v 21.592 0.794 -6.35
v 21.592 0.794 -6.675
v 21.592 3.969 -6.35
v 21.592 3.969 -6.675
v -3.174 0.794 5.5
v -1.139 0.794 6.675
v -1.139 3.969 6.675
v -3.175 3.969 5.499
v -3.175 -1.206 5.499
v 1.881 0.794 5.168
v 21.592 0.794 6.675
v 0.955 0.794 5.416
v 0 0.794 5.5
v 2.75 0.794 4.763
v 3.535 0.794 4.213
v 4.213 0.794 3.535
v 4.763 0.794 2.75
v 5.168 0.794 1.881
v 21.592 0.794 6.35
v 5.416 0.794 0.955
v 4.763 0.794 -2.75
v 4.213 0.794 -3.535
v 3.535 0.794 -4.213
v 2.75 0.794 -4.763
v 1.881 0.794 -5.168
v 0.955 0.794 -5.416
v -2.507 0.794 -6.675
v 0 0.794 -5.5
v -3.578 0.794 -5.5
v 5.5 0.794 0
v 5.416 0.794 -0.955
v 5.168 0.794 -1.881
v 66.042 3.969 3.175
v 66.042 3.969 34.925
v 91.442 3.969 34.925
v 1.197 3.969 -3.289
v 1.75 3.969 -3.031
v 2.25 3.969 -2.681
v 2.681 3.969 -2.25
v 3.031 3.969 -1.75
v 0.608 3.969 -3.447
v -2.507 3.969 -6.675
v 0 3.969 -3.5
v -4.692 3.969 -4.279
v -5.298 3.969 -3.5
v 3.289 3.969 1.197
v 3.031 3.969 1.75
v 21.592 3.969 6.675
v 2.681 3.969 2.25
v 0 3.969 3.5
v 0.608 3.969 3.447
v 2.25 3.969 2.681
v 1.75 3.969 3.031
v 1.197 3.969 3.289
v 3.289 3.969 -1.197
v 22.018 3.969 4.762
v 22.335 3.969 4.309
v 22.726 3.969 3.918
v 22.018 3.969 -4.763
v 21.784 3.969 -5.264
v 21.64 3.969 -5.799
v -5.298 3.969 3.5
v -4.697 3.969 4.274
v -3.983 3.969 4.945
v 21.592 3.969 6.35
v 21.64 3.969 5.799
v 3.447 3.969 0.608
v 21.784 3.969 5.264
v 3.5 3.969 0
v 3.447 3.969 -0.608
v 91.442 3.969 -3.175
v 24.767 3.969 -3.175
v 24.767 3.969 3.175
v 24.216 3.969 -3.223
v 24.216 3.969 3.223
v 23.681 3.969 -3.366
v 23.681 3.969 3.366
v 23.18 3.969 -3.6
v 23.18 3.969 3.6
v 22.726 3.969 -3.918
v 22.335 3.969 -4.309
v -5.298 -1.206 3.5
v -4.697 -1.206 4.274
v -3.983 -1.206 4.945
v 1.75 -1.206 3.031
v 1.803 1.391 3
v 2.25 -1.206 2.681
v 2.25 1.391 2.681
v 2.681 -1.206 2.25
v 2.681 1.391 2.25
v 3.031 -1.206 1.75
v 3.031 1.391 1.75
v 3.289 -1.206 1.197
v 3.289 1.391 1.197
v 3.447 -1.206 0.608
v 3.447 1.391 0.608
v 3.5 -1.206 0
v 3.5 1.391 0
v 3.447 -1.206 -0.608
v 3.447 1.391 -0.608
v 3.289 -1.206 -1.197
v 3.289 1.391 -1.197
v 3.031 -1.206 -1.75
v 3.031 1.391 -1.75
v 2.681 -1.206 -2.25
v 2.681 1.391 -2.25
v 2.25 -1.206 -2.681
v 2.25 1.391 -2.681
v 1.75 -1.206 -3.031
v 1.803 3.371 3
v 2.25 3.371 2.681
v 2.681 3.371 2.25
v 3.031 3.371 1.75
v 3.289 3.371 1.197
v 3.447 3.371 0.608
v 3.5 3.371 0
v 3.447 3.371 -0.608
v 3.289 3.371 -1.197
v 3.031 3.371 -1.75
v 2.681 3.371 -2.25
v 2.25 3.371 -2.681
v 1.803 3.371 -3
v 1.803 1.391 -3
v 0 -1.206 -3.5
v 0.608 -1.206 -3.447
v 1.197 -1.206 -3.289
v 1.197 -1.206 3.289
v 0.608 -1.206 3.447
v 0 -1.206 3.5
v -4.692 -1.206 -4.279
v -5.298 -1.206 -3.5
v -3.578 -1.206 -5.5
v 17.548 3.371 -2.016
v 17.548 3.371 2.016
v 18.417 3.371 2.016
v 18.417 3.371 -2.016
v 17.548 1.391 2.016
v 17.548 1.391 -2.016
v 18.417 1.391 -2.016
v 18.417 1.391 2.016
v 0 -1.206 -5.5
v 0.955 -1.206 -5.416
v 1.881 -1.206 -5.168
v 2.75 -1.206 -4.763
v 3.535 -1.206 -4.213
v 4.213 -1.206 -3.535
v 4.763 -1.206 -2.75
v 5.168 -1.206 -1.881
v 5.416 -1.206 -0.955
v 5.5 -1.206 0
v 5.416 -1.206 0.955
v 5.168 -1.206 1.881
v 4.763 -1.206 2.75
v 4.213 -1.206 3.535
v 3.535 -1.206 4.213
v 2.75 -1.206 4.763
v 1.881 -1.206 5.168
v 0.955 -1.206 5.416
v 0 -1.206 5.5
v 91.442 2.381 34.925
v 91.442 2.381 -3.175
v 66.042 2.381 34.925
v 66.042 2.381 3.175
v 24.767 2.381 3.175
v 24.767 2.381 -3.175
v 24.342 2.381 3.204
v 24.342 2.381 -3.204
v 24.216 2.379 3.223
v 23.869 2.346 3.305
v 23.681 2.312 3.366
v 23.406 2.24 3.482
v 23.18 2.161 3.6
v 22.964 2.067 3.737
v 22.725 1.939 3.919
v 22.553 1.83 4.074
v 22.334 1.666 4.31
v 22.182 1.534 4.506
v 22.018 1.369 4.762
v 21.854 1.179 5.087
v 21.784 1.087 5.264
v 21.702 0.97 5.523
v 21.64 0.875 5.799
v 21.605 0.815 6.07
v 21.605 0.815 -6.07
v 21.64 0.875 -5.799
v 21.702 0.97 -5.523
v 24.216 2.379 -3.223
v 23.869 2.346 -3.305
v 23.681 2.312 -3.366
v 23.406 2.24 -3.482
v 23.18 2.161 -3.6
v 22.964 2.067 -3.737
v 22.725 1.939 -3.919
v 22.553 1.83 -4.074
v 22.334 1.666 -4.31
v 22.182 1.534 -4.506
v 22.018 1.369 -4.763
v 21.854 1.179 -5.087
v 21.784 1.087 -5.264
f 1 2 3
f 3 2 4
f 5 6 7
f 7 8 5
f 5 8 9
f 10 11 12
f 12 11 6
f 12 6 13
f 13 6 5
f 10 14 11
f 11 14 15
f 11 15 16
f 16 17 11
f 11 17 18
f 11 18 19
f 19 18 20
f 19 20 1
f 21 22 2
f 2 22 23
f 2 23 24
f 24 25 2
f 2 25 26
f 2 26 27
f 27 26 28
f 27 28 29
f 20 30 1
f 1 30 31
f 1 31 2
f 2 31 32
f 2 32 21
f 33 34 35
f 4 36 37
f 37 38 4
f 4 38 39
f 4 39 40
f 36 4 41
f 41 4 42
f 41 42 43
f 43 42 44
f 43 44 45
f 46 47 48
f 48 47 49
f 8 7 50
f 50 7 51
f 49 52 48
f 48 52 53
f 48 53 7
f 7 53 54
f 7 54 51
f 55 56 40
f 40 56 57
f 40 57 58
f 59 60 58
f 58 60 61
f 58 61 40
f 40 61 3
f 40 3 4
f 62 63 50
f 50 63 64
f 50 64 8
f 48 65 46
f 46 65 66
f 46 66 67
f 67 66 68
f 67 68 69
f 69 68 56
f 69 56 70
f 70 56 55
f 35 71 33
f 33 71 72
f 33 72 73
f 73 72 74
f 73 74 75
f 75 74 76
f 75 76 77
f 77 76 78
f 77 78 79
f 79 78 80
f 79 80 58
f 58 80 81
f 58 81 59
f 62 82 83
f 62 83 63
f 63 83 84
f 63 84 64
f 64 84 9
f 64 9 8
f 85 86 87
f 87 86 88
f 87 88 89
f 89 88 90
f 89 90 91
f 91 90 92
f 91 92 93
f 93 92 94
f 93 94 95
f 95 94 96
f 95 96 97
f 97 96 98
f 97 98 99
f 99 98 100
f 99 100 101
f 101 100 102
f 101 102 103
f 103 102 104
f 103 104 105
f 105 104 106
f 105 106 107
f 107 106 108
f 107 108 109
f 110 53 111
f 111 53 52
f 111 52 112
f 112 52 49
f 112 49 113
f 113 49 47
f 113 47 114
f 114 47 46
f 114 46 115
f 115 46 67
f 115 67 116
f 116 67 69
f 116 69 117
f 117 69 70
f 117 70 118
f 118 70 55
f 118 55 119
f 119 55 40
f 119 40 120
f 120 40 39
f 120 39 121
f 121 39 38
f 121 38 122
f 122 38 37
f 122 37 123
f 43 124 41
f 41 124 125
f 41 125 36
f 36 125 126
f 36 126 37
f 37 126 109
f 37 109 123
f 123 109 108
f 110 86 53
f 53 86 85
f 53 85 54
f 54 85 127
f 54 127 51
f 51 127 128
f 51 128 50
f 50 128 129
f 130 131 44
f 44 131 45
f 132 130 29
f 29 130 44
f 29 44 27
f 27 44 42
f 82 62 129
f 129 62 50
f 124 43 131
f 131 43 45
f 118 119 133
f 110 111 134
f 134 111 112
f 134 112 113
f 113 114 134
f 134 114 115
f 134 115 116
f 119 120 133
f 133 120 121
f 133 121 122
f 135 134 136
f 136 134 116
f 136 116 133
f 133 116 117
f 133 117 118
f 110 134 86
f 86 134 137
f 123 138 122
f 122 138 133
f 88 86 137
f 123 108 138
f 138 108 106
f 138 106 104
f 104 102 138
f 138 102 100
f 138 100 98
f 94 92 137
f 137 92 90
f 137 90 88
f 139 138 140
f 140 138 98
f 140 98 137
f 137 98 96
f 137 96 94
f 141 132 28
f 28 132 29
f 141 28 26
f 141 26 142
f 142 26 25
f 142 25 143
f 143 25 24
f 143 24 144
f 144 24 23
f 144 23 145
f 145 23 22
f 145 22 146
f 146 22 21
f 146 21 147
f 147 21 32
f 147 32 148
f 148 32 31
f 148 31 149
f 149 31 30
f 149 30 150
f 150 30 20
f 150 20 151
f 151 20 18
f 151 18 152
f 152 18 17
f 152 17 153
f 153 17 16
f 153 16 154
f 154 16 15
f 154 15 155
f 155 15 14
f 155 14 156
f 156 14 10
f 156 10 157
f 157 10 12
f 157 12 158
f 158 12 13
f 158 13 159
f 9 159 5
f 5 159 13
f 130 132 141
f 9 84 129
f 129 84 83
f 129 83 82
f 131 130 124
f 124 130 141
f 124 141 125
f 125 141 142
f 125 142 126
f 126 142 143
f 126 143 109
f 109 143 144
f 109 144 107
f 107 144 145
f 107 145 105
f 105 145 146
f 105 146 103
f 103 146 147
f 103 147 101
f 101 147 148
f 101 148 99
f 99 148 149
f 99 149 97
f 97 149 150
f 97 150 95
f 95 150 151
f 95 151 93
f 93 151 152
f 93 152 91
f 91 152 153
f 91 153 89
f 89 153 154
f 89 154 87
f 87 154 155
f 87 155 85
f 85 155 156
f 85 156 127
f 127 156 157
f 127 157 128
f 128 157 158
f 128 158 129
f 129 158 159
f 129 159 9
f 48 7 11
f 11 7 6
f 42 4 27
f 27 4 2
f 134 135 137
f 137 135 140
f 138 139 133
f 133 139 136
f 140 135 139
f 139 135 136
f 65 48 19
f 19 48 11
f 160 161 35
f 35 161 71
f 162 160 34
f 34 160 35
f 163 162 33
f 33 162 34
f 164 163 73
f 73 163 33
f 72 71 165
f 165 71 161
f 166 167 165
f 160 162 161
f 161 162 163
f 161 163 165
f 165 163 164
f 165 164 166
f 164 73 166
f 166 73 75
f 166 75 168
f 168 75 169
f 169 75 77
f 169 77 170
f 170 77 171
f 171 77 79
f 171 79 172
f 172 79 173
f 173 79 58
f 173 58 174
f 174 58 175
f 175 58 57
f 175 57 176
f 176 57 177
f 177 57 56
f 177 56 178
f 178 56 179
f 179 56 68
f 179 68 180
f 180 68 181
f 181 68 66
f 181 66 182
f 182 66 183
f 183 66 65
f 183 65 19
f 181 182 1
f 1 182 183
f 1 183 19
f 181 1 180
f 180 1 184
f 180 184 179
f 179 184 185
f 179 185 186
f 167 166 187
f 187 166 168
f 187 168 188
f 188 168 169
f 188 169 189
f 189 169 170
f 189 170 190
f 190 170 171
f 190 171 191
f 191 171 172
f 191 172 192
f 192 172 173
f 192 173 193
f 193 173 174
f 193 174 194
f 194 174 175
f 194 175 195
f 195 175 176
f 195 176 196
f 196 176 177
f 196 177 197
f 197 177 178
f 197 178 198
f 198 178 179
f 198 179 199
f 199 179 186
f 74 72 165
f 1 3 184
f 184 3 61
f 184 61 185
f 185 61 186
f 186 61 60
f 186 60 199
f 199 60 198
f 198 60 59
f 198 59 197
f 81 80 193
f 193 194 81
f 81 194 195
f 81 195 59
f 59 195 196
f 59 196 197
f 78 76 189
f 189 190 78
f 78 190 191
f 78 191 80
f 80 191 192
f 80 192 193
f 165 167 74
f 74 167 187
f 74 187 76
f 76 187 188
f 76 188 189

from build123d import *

# Parameters (mm, degrees)
BOSS_EXTRUDE1_DEPTH = 4.7625
SKETCH5_R           = 3.5000057
CUT_EXTRUDE2_DEPTH  = 3.37125
CUT_EXTRUDE3_START  = 1.98
CUT_EXTRUDE3_DEPTH  = 1.98
SKETCH10_W          = 6.35
SKETCH10_H          = 0.79375
SKETCH10_W_2        = 35.745198541
SKETCH10_W_3        = 19.548012242
CUT_EXTRUDE4_DEPTH  = 68.70484365
CUT_EXTRUDE5_DEPTH  = 2.54
BOSS_EXTRUDE2_START = 2
BOSS_EXTRUDE2_DEPTH = 2
CUT_EXTRUDE6_DEPTH  = 62.875089873
BOSS_EXTRUDE4_REACH = 26.955
SKETCH15_W          = 13.3500114
SKETCH15_H          = 3.175
SKETCH15_W_2        = 4.031850112
SKETCH15_H_2        = 1.98
SKETCH20_W          = 13.3500114
SKETCH20_H          = 3.175
BOSS_EXTRUDE7_DEPTH = 3.175
SKETCH21_W          = 25.4
SKETCH21_H          = 31.75
BOSS_EXTRUDE8_DEPTH = 1.5875
FILLET1_R           = 3.175


with BuildPart() as part:
    # Sketch1 → Boss-Extrude1 (new body)
    with BuildSketch(Plane(origin=(0, 0, 0), x_dir=(1, 0, 0), z_dir=(0, 1, 0))):
        with BuildLine():
            Line((23.295952901, 15.613744639), (32.606191406, 26.334377035))
            ThreePointArc((32.606191406, 26.334377035), (32.033289602, 35.241600739), (23.119772343, 34.776777479))
            Line((23.119772343, 34.776777479), (-4.692006503, 4.278735207))
            ThreePointArc((-4.692006503, 4.278735207), (-6.274930424, -0.973523588), (-3.175, -5.499261314))
            Line((-3.175, -5.499261314), (27.78125, -23.371860585))
            ThreePointArc((27.78125, -23.371860585), (37.752424387, -26.756618196), (48.25987898, -26.067923237))
            ThreePointArc((48.25987898, -26.067923237), (49.382410995, -24.123640754), (47.438128512, -23.001108739))
            ThreePointArc((47.438128512, -23.001108739), (21.083895316, -12.623567162), (23.295952901, 15.613744639))
        make_face()
    extrude(amount=BOSS_EXTRUDE1_DEPTH)

    # Sketch5 → Cut-Extrude2 (cut)
    with BuildSketch(Plane.XZ):
        Circle(SKETCH5_R)
        with BuildLine():
            ThreePointArc((0, -3.5000057), (-3.5000057, 0), (0, 3.5000057))
            Line((0, 3.5000057), (-5.298345034, 3.5000057))
            ThreePointArc((-5.298345034, 3.5000057), (-6.35, 0), (-5.298345034, -3.5000057))
            Line((-5.298345034, -3.5000057), (0, -3.5000057))
        make_face()
    extrude(amount=-CUT_EXTRUDE2_DEPTH, mode=Mode.SUBTRACT)

    # Sketch6 → Cut-Extrude3 (cut)
    with BuildSketch(Plane.XZ.offset(-3.37125).offset(CUT_EXTRUDE3_START)):
        with BuildLine():
            Line((17.802786704, -2), (17.802786704, 2))
            Line((17.802786704, 2), (1.802786704, 3))
            ThreePointArc((1.802786704, 3), (3.5000057, 0), (1.802786704, -3))
            Line((1.802786704, -3), (17.802786704, -2))
        make_face()
    extrude(amount=-CUT_EXTRUDE3_DEPTH, mode=Mode.SUBTRACT)

    # Sketch10 → Cut-Extrude4 (cut, through all)
    with BuildSketch(Plane(origin=(-3.175, 0, 5.499261314), x_dir=(0.8660254037844385, 0, 0.5000000000000003), z_dir=(-0.5000000000000003, 0, 0.8660254037844385))):
        with Locations((-3.175, 4.365625)):
            Rectangle(SKETCH10_W, SKETCH10_H)
        with Locations((17.872599271, 4.365625)):
            Rectangle(SKETCH10_W_2, SKETCH10_H)
        with Locations((45.519204662, 4.365625)):
            Rectangle(SKETCH10_W_3, SKETCH10_H)
        with Locations((45.519204662, 0.396875)):
            Rectangle(SKETCH10_W_3, SKETCH10_H)
        with Locations((17.872599271, 0.396875)):
            Rectangle(SKETCH10_W_2, SKETCH10_H)
        with Locations((-3.175, 0.396875)):
            Rectangle(SKETCH10_W, SKETCH10_H)
    extrude(amount=-CUT_EXTRUDE4_DEPTH, mode=Mode.SUBTRACT)

    # Sketch11 → Cut-Extrude5 (cut)
    with BuildSketch(Plane.XZ.offset(-3.37125)):
        with BuildLine():
            Line((-5.298345034, 3.5000057), (0, 3.5000057))
            ThreePointArc((0, 3.5000057), (3.5000057, 0), (0, -3.5000057))
            Line((0, -3.5000057), (-5.298345034, -3.5000057))
            ThreePointArc((-5.298345034, -3.5000057), (-6.35, 0), (-5.298345034, 3.5000057))
        make_face()
    extrude(amount=-CUT_EXTRUDE5_DEPTH, mode=Mode.SUBTRACT)

    # Sketch12 → Boss-Extrude2 (add)
    with BuildSketch(Plane.XZ.offset(-0.79375).offset(BOSS_EXTRUDE2_START)):
        with BuildLine():
            Line((-3.175, 5.499261314), (-3.173710686, 5.5000057))
            Line((-3.173710686, 5.5000057), (0, 5.5000057))
            ThreePointArc((0, 5.5000057), (5.5000057, 0), (0, -5.5000057))
            Line((0, -5.5000057), (-3.57830535, -5.5000057))
            Line((-3.57830535, -5.5000057), (-4.692006503, -4.278735207))
            ThreePointArc((-4.692006503, -4.278735207), (-5.010327921, -3.901168303), (-5.298345034, -3.5000057))
            Line((-5.298345034, -3.5000057), (0, -3.5000057))
            ThreePointArc((0, -3.5000057), (3.5000057, 0), (0, 3.5000057))
            Line((0, 3.5000057), (-5.298345034, 3.5000057))
            ThreePointArc((-5.298345034, 3.5000057), (-4.353004683, 4.623186156), (-3.175, 5.499261314))
        make_face()
    extrude(amount=-BOSS_EXTRUDE2_DEPTH)

    # Sketch14 → Cut-Extrude6 (cut, through all)
    with BuildSketch(Plane(origin=(0, 3.96875, 0), x_dir=(1, 0, 0), z_dir=(0, 1, 0))):
        with BuildLine():
            Line((-2.50679919, 6.6750057), (18.4171905, 6.6750057))
            ThreePointArc((18.4171905, 6.6750057), (20.373146549, 11.408228546), (23.295952901, 15.613744639))
            Line((23.295952901, 15.613744639), (32.606191406, 26.334377035))
            ThreePointArc((32.606191406, 26.334377035), (32.033289602, 35.241600739), (23.119772343, 34.776777479))
            Line((23.119772343, 34.776777479), (-2.50679919, 6.6750057))
        make_face()
        with BuildLine():
            ThreePointArc((47.438128512, -23.001108739), (29.599662599, -20.753834653), (18.4171905, -6.6750057))
            Line((18.4171905, -6.6750057), (-1.138550987, -6.6750057))
            Line((-1.138550987, -6.6750057), (27.78125, -23.371860585))
            ThreePointArc((27.78125, -23.371860585), (37.752424387, -26.756618196), (48.25987898, -26.067923237))
            ThreePointArc((48.25987898, -26.067923237), (49.382410995, -24.123640754), (47.438128512, -23.001108739))
        make_face()
    extrude(amount=-CUT_EXTRUDE6_DEPTH, mode=Mode.SUBTRACT)

    # Sketch15 → Boss-Extrude4 (add, up to next)
    with BuildSketch(Plane(origin=(18.4171905, 0, 0), x_dir=(0, 0, -1), z_dir=(1, 0, 0)), mode=Mode.PRIVATE) as boss_extrude4_sk1:
        with Locations((0, 2.38125)):
            Rectangle(SKETCH15_W, SKETCH15_H)
        with Locations((0, 2.38125)):
            Rectangle(SKETCH15_W_2, SKETCH15_H_2, mode=Mode.SUBTRACT)
    boss_extrude4_tool1 = extrude(boss_extrude4_sk1.sketch, amount=-BOSS_EXTRUDE4_REACH, mode=Mode.PRIVATE) - part.part
    add(boss_extrude4_tool1.solids().sort_by_distance((18.41719, 2.38125, -6.537782))[0])

    # Sketch20 → Boss-Extrude7 (add)
    with BuildSketch(Plane(origin=(18.4171905, 0, 0), x_dir=(0, 0, -1), z_dir=(1, 0, 0))):
        with Locations((0, 2.38125)):
            Rectangle(SKETCH20_W, SKETCH20_H)
    extrude(amount=BOSS_EXTRUDE7_DEPTH)

    # Sketch21 → Boss-Extrude8 (add)
    with BuildSketch(Plane(origin=(0, 3.96875, 0), x_dir=(1, 0, 0), z_dir=(0, 1, 0))):
        with Locations((78.7421905, -19.05)):
            Rectangle(SKETCH21_W, SKETCH21_H)
        Polygon((91.4421905, 3.175), (21.5921905, 3.175), (21.5921905, -3.175), (66.0421905, -3.175), (91.4421905, -3.175), align=None)
    extrude(amount=-BOSS_EXTRUDE8_DEPTH)

    # Fillet1
    # the kernel refuses this fillet: 3.175 mm, written as the material it adds along each edge
    with BuildSketch(Plane(origin=(21.5921905, 3.96875, 3.175), x_dir=(0, 0, 1), z_dir=(0, -1, 0))) as fillet1_piece_1:
        with BuildLine():
            CenterArc((FILLET1_R, -FILLET1_R), FILLET1_R, 90, 90)
            Line((0, -FILLET1_R), (-FILLET1_R * 0.02, -FILLET1_R))
            Line((-FILLET1_R * 0.02, -FILLET1_R), (-FILLET1_R * 0.02, FILLET1_R * 0.02))
            Line((-FILLET1_R * 0.02, FILLET1_R * 0.02), (FILLET1_R, FILLET1_R * 0.02))
            Line((FILLET1_R, FILLET1_R * 0.02), (FILLET1_R, 0))
        make_face()
    extrude(amount=1.5875)
    with BuildSketch(Plane(origin=(21.5921905, 3.96875, -3.175), x_dir=(0, 0, -1), z_dir=(0, -1, 0))) as fillet1_piece_2:
        with BuildLine():
            CenterArc((FILLET1_R, FILLET1_R), FILLET1_R, 180, 90)
            Line((0, FILLET1_R), (-FILLET1_R * 0.02, FILLET1_R))
            Line((-FILLET1_R * 0.02, FILLET1_R), (-FILLET1_R * 0.02, -FILLET1_R * 0.02))
            Line((-FILLET1_R * 0.02, -FILLET1_R * 0.02), (FILLET1_R, -FILLET1_R * 0.02))
            Line((FILLET1_R, -FILLET1_R * 0.02), (FILLET1_R, 0))
        make_face()
    extrude(amount=1.5875)
    with BuildSketch(Plane(origin=(21.5921905, 2.38125, -3.175), x_dir=(0, -1, 0), z_dir=(0, 0, 1))) as fillet1_piece_3:
        with BuildLine():
            CenterArc((3.175, 2.749630657), FILLET1_R, 180, 60)
            Line((0, 2.749630657), (-0.0635, 2.749630657))
            Line((-0.0635, 2.749630657), (-0.0635, 0))
            Line((-0.0635, 0), (0, -0.0635))
            ThreePointArc((0, -0.0635), (0.79375, -0.0635), (1.55575, -0.054992613))
            Line((1.55575, -0.054992613), (1.5875, 0))
        make_face()
    extrude(amount=6.35)
    with BuildSketch(Plane(origin=(21.5921905, 3.96875, 3.175), x_dir=(0, 0, 1), z_dir=(0, -1, 0))) as fillet1_piece_4a_section:
        with BuildLine():
            CenterArc((FILLET1_R, -FILLET1_R), FILLET1_R, 90, 90)
            Line((0, -FILLET1_R), (-FILLET1_R * 0.02, -FILLET1_R))
            Line((-FILLET1_R * 0.02, -FILLET1_R), (-FILLET1_R * 0.02, FILLET1_R * 0.02))
            Line((-FILLET1_R * 0.02, FILLET1_R * 0.02), (FILLET1_R, FILLET1_R * 0.02))
            Line((FILLET1_R, FILLET1_R * 0.02), (FILLET1_R, 0))
        make_face()
    fillet1_piece_4a = extrude(amount=9.525, mode=Mode.PRIVATE)
    fillet1_piece_4a = split(fillet1_piece_4a, bisect_by=Plane(origin=(22.310994987, 0.79375, 3.893804488), z_dir=(0, 1, 0)), keep=Keep.TOP, mode=Mode.PRIVATE)
    fillet1_piece_4a = split(fillet1_piece_4a, bisect_by=Plane(origin=(22.310994987, 2.38125, 3.893804488), z_dir=(0, -1, 0)), keep=Keep.TOP, mode=Mode.PRIVATE)
    with BuildSketch(Plane(origin=(21.5921905, 2.38125, -3.175), x_dir=(0, -1, 0), z_dir=(0, 0, 1))) as fillet1_piece_4b_section:
        with BuildLine():
            CenterArc((3.175, 2.749630657), FILLET1_R, 180, 60)
            Line((0, 2.749630657), (-0.0635, 2.749630657))
            Line((-0.0635, 2.749630657), (-0.0635, 0))
            Line((-0.0635, 0), (0, -0.0635))
            ThreePointArc((0, -0.0635), (0.79375, -0.0635), (1.55575, -0.054992613))
            Line((1.55575, -0.054992613), (1.5875, 0))
        make_face()
    fillet1_piece_4b = extrude(amount=13.224076643, mode=Mode.PRIVATE)
    fillet1_piece_4b = split(fillet1_piece_4b, bisect_by=Plane(origin=(22.278976165, 1.970034442, 6.6750057), z_dir=(0, 0, -1)), keep=Keep.TOP, mode=Mode.PRIVATE)
    fillet1_piece_4b = split(fillet1_piece_4b, bisect_by=Plane(origin=(22.278976165, 1.970034442, 3.175), z_dir=(0, 0, 1)), keep=Keep.TOP, mode=Mode.PRIVATE)
    fillet1_piece_4 = fillet1_piece_4a & fillet1_piece_4b
    add(fillet1_piece_4)
    with BuildSketch(Plane(origin=(21.5921905, 2.38125, -10.049076643), x_dir=(0, -1, 0), z_dir=(0, 0, 1))) as fillet1_piece_5a_section:
        with BuildLine():
            CenterArc((3.175, 2.749630657), FILLET1_R, 180, 60)
            Line((0, 2.749630657), (-0.0635, 2.749630657))
            Line((-0.0635, 2.749630657), (-0.0635, 0))
            Line((-0.0635, 0), (0, -0.0635))
            ThreePointArc((0, -0.0635), (0.79375, -0.0635), (1.55575, -0.054992613))
            Line((1.55575, -0.054992613), (1.5875, 0))
        make_face()
    fillet1_piece_5a = extrude(amount=13.224076643, mode=Mode.PRIVATE)
    fillet1_piece_5a = split(fillet1_piece_5a, bisect_by=Plane(origin=(22.278976165, 1.970034442, -6.6750057), z_dir=(0, 0, 1)), keep=Keep.TOP, mode=Mode.PRIVATE)
    fillet1_piece_5a = split(fillet1_piece_5a, bisect_by=Plane(origin=(22.278976165, 1.970034442, -3.175), z_dir=(0, 0, -1)), keep=Keep.TOP, mode=Mode.PRIVATE)
    with BuildSketch(Plane(origin=(21.5921905, 3.96875, -3.175), x_dir=(0, 0, -1), z_dir=(0, -1, 0))) as fillet1_piece_5b_section:
        with BuildLine():
            CenterArc((FILLET1_R, FILLET1_R), FILLET1_R, 180, 90)
            Line((0, FILLET1_R), (-FILLET1_R * 0.02, FILLET1_R))
            Line((-FILLET1_R * 0.02, FILLET1_R), (-FILLET1_R * 0.02, -FILLET1_R * 0.02))
            Line((-FILLET1_R * 0.02, -FILLET1_R * 0.02), (FILLET1_R, -FILLET1_R * 0.02))
            Line((FILLET1_R, -FILLET1_R * 0.02), (FILLET1_R, 0))
        make_face()
    fillet1_piece_5b = extrude(amount=9.525, mode=Mode.PRIVATE)
    fillet1_piece_5b = split(fillet1_piece_5b, bisect_by=Plane(origin=(22.310994987, 0.79375, -3.893804488), z_dir=(0, 1, 0)), keep=Keep.TOP, mode=Mode.PRIVATE)
    fillet1_piece_5b = split(fillet1_piece_5b, bisect_by=Plane(origin=(22.310994987, 2.38125, -3.893804488), z_dir=(0, -1, 0)), keep=Keep.TOP, mode=Mode.PRIVATE)
    fillet1_piece_5 = fillet1_piece_5a & fillet1_piece_5b
    add(fillet1_piece_5)


solid = part.part
